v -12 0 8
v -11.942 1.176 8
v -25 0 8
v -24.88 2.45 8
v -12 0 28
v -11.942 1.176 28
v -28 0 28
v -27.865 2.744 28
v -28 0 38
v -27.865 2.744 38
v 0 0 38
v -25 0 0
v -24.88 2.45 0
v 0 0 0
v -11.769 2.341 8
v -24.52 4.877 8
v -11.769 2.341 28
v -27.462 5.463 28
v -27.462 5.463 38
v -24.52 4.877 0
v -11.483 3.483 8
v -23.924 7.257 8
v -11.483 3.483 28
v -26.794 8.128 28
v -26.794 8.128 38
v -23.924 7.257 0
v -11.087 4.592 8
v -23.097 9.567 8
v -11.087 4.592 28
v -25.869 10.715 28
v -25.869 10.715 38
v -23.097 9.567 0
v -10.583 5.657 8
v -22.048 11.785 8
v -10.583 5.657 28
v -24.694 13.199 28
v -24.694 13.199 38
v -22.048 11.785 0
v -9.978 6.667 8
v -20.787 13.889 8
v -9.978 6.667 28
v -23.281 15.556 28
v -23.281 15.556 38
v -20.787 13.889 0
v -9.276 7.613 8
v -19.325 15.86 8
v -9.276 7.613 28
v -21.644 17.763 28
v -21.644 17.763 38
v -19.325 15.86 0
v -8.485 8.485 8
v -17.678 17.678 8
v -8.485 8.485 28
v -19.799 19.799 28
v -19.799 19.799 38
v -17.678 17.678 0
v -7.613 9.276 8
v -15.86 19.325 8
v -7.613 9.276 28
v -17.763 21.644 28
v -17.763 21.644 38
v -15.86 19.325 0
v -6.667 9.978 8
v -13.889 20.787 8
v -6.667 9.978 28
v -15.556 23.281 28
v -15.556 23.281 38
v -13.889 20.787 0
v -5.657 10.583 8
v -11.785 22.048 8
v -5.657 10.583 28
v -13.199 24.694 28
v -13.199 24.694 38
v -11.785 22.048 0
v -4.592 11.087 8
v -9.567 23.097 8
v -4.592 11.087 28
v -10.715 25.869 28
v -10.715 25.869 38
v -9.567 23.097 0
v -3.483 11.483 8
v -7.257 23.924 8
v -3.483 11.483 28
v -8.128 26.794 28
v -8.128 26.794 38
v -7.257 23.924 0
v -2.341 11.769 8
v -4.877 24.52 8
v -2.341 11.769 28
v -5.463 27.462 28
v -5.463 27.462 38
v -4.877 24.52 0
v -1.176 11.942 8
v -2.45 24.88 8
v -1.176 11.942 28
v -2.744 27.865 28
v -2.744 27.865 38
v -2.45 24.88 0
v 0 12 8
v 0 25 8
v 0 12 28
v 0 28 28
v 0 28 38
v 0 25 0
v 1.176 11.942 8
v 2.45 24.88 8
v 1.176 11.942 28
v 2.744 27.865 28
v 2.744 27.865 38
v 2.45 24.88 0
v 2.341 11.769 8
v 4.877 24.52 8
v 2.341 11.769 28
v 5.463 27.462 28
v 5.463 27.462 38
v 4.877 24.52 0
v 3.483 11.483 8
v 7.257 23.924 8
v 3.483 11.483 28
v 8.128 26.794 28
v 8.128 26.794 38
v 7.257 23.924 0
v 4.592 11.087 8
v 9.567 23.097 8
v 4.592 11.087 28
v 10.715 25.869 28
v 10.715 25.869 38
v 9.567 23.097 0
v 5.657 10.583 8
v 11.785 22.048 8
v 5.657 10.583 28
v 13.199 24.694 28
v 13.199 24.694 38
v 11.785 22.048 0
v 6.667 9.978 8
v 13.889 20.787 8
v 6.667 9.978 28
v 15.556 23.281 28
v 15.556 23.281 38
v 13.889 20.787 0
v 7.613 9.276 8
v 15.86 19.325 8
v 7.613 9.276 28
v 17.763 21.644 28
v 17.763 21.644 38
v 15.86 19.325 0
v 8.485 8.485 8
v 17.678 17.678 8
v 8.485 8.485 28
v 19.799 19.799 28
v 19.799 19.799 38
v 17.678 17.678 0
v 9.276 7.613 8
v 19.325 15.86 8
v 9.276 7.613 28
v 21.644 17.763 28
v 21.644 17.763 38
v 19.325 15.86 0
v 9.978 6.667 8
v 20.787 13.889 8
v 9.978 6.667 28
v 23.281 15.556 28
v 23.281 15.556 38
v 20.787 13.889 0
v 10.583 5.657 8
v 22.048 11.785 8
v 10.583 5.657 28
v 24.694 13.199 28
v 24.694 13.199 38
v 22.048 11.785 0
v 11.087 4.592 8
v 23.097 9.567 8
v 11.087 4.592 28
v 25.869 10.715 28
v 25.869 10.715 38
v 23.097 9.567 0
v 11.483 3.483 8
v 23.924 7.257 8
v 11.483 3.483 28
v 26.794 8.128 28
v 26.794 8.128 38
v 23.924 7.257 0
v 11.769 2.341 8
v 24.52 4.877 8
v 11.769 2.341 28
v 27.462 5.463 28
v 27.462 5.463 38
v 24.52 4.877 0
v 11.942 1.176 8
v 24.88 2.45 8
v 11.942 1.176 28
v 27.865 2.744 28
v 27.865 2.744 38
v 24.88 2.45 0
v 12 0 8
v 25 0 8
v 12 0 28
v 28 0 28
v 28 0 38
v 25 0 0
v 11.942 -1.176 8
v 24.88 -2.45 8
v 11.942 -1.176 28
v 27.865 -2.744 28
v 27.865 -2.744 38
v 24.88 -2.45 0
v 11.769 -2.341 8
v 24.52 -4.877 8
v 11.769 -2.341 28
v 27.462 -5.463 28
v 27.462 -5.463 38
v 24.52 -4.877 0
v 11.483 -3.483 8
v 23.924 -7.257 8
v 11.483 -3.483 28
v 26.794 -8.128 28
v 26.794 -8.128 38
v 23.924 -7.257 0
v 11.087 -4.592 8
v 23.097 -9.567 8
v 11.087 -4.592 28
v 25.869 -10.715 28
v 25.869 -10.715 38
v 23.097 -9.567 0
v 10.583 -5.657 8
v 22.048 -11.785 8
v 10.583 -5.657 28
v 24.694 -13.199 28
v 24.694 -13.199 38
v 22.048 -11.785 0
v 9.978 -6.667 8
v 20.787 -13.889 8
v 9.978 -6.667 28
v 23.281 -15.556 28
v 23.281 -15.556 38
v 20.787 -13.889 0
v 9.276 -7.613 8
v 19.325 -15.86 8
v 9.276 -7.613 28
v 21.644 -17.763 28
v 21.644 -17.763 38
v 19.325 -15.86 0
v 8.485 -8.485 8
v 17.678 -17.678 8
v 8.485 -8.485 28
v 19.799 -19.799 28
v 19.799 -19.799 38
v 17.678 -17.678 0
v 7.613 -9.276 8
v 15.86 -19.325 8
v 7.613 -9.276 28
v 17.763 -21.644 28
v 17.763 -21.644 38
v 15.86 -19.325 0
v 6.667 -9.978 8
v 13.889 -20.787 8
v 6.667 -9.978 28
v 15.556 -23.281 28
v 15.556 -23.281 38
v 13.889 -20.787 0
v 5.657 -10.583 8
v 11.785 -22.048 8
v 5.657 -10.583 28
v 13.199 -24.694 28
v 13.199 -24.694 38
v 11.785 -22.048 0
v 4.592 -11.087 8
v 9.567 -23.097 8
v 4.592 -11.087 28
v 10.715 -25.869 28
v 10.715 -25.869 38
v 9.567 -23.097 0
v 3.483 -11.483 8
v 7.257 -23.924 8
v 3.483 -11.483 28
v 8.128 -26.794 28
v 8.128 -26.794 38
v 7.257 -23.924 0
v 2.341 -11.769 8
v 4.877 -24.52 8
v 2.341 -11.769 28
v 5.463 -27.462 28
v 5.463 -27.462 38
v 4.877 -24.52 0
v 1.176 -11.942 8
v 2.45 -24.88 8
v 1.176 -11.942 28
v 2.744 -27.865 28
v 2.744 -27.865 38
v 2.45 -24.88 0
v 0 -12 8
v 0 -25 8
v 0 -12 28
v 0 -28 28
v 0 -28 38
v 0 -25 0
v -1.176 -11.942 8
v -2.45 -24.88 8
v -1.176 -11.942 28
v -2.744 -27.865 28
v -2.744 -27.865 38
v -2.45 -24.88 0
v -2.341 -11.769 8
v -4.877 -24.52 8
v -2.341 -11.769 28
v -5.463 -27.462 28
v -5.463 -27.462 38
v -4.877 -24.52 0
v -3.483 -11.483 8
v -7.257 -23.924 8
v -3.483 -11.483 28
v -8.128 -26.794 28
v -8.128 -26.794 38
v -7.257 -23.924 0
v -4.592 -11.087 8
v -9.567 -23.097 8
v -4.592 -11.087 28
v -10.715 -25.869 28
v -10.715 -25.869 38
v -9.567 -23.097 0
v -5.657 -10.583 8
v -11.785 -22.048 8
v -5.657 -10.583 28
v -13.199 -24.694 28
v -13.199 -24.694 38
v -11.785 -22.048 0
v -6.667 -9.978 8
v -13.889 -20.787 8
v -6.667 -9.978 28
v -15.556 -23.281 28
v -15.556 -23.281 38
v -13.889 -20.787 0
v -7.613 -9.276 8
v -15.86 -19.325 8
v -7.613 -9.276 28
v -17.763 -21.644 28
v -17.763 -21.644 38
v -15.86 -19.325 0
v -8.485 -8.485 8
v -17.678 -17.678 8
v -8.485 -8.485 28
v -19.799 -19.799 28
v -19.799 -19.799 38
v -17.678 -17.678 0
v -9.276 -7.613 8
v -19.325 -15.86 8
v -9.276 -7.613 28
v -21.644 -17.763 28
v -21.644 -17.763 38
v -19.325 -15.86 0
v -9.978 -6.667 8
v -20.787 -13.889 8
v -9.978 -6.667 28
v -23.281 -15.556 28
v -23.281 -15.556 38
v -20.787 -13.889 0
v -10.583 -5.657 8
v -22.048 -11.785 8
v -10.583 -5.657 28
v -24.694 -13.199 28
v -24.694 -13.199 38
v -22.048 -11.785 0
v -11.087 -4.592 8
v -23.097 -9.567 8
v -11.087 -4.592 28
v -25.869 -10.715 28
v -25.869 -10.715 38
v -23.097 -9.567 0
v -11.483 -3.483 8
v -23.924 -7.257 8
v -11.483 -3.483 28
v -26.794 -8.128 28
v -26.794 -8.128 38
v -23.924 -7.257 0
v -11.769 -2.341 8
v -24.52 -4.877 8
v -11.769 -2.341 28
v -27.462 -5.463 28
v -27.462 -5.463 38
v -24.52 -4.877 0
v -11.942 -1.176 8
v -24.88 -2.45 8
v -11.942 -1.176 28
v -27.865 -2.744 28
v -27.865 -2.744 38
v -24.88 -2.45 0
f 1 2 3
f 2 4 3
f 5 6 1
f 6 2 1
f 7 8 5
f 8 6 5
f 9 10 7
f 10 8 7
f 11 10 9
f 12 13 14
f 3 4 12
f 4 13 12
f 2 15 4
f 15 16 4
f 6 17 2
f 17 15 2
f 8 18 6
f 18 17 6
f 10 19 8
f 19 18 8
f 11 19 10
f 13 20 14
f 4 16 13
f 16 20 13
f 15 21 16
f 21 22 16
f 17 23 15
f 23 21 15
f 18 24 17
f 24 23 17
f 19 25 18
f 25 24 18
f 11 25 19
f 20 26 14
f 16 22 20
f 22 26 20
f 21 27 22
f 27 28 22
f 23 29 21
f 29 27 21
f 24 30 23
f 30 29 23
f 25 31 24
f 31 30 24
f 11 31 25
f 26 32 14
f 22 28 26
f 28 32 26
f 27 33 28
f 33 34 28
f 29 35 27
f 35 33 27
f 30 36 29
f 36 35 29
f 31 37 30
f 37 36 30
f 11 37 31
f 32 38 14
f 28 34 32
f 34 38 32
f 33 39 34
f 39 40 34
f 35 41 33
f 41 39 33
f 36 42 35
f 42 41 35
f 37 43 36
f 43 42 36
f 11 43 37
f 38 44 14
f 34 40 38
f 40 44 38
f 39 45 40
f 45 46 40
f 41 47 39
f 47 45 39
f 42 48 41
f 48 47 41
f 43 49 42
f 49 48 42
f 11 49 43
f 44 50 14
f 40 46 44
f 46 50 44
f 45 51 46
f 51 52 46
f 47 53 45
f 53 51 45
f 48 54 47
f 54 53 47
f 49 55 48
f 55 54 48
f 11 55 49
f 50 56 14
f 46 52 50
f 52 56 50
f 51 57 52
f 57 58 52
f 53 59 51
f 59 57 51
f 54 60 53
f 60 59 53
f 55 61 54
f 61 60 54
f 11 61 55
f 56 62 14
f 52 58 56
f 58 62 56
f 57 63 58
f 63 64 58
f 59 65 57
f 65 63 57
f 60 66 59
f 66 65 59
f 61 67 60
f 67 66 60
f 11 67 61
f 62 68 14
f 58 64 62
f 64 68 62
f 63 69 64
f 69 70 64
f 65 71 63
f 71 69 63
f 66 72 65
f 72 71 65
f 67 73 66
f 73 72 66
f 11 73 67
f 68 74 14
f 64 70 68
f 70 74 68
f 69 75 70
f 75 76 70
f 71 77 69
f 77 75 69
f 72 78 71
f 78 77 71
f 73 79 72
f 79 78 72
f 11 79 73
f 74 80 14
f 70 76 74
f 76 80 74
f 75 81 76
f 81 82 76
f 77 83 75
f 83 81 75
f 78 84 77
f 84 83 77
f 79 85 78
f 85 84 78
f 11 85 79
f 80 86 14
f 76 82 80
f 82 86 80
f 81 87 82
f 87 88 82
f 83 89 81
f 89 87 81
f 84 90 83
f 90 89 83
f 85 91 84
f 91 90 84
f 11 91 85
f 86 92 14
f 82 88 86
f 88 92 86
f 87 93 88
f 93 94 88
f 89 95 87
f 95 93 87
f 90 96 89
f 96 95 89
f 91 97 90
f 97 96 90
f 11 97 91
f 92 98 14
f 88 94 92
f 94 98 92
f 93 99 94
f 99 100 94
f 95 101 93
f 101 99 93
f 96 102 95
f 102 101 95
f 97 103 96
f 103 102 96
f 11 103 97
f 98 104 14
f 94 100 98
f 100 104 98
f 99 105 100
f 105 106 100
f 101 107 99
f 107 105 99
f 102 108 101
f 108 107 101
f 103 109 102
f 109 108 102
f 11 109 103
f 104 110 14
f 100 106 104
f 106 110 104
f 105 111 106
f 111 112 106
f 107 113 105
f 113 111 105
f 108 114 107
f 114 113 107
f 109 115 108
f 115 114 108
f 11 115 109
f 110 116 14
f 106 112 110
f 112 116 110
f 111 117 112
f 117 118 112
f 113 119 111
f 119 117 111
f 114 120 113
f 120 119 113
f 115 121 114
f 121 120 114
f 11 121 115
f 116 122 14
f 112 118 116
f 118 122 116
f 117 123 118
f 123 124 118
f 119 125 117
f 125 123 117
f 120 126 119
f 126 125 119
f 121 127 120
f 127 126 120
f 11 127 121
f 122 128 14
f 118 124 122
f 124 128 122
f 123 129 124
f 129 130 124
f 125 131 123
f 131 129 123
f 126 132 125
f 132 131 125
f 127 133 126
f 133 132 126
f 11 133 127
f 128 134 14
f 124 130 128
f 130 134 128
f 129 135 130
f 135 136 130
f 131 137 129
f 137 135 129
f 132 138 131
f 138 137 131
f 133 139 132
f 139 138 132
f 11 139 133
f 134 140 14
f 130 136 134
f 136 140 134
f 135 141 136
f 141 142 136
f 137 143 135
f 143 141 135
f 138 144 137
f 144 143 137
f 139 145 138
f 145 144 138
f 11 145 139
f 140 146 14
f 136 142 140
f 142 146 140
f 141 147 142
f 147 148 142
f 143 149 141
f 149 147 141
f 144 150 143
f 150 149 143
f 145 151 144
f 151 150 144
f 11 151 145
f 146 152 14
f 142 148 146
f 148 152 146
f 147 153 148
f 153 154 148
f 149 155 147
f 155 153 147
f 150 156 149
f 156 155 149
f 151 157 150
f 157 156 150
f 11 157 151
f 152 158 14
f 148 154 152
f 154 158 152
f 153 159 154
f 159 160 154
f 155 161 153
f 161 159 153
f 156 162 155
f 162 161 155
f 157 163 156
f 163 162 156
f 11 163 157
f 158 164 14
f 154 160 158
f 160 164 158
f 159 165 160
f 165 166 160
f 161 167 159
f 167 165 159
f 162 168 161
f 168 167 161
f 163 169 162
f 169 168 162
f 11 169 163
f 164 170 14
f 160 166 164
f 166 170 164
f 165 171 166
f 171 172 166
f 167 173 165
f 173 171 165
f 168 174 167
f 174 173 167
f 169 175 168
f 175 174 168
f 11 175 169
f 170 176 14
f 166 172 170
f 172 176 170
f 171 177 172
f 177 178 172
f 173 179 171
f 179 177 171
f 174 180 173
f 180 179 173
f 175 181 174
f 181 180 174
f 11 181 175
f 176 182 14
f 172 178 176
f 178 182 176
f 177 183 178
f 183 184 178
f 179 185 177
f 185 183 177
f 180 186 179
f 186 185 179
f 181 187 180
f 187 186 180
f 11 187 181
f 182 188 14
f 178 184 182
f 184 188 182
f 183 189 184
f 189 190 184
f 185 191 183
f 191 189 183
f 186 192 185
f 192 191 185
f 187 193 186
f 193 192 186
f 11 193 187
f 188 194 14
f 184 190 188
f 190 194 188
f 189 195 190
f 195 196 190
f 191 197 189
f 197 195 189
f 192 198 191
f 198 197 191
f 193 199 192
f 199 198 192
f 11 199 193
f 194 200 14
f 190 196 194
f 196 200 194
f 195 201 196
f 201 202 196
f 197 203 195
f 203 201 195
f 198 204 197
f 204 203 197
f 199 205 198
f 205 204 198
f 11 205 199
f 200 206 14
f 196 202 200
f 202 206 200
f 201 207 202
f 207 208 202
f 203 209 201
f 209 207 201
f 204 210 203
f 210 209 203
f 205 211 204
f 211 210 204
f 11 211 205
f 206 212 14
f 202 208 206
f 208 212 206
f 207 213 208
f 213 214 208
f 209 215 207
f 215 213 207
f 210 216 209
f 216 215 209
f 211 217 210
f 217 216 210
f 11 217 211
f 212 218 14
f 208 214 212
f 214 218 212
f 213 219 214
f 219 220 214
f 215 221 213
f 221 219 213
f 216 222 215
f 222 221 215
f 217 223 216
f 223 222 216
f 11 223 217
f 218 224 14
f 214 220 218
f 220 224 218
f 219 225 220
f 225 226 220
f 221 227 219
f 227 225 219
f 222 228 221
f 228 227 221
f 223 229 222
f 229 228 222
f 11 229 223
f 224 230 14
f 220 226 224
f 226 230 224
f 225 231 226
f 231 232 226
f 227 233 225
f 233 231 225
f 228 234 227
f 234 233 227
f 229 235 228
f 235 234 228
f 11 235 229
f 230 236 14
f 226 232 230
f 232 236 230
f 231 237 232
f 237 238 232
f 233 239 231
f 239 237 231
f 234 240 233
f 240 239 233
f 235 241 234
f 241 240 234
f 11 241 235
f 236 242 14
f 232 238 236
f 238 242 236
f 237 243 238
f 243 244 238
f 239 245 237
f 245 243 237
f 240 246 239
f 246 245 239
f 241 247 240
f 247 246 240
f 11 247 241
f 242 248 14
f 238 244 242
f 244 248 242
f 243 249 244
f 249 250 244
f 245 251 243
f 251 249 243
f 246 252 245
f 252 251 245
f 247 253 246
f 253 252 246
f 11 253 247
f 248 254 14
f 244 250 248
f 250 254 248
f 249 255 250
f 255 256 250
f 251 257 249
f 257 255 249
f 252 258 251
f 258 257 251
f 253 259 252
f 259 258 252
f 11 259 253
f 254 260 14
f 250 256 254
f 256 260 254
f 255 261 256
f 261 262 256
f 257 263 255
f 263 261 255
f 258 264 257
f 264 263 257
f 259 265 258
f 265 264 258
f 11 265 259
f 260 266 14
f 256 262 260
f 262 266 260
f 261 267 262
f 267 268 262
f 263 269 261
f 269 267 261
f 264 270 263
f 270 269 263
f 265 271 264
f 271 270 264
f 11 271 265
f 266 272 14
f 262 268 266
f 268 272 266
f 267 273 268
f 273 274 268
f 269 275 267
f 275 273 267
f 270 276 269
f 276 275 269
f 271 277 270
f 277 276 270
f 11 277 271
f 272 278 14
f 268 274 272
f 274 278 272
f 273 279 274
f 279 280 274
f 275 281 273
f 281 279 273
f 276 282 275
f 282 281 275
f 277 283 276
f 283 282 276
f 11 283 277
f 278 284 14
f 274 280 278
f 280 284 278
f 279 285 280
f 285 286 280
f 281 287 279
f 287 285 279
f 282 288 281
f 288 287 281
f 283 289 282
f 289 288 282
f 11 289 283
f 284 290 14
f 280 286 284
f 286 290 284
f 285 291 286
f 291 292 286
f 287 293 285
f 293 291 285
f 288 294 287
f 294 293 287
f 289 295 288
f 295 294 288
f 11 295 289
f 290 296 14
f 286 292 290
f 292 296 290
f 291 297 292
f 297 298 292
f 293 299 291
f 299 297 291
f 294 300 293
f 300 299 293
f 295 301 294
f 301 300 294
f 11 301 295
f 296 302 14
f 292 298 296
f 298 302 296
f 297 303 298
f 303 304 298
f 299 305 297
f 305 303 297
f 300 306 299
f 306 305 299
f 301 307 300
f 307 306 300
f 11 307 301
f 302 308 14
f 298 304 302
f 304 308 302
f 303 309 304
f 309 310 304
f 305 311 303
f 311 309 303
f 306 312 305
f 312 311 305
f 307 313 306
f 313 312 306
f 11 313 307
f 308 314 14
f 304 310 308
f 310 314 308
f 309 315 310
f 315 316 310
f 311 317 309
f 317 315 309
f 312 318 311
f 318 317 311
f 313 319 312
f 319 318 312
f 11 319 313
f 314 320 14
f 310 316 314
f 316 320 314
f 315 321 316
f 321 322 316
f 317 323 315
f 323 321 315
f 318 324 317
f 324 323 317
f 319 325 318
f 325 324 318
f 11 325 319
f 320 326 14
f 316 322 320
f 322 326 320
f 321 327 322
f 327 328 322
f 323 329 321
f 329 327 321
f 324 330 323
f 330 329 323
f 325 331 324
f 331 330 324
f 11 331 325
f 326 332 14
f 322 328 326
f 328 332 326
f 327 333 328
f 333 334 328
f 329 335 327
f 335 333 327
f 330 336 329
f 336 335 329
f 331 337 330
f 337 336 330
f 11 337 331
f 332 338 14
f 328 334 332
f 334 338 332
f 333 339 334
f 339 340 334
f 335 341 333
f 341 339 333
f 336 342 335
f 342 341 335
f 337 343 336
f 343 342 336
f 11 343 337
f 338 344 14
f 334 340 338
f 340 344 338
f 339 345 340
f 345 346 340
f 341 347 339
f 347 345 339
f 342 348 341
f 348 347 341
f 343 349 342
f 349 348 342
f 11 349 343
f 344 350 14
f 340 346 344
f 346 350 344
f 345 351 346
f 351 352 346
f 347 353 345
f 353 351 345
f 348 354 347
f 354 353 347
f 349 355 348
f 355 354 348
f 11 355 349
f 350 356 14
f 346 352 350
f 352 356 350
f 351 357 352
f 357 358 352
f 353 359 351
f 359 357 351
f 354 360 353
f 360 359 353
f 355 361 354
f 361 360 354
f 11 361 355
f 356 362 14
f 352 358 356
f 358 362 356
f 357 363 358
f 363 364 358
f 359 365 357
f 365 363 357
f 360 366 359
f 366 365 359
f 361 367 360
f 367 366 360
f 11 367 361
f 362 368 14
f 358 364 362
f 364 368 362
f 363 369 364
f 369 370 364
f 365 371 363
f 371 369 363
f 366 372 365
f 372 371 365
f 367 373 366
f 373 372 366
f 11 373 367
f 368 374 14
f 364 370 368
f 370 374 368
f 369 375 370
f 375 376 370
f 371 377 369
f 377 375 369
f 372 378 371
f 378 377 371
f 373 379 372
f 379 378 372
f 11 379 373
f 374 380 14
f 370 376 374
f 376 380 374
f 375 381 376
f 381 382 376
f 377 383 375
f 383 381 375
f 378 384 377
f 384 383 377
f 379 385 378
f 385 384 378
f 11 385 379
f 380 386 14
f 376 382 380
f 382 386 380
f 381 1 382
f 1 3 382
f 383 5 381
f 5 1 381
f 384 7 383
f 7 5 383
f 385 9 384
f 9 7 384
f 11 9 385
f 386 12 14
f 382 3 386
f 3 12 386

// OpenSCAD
// Knob revolved about Z: base d50 h8, neck d24 h20, cap d56 h10 => 38 tall.
$fn=64;
rotate_extrude() {
  polygon([[0,0],[25,0],[25,8],[12,8],[12,28],[28,28],[28,38],[0,38]]);
}
